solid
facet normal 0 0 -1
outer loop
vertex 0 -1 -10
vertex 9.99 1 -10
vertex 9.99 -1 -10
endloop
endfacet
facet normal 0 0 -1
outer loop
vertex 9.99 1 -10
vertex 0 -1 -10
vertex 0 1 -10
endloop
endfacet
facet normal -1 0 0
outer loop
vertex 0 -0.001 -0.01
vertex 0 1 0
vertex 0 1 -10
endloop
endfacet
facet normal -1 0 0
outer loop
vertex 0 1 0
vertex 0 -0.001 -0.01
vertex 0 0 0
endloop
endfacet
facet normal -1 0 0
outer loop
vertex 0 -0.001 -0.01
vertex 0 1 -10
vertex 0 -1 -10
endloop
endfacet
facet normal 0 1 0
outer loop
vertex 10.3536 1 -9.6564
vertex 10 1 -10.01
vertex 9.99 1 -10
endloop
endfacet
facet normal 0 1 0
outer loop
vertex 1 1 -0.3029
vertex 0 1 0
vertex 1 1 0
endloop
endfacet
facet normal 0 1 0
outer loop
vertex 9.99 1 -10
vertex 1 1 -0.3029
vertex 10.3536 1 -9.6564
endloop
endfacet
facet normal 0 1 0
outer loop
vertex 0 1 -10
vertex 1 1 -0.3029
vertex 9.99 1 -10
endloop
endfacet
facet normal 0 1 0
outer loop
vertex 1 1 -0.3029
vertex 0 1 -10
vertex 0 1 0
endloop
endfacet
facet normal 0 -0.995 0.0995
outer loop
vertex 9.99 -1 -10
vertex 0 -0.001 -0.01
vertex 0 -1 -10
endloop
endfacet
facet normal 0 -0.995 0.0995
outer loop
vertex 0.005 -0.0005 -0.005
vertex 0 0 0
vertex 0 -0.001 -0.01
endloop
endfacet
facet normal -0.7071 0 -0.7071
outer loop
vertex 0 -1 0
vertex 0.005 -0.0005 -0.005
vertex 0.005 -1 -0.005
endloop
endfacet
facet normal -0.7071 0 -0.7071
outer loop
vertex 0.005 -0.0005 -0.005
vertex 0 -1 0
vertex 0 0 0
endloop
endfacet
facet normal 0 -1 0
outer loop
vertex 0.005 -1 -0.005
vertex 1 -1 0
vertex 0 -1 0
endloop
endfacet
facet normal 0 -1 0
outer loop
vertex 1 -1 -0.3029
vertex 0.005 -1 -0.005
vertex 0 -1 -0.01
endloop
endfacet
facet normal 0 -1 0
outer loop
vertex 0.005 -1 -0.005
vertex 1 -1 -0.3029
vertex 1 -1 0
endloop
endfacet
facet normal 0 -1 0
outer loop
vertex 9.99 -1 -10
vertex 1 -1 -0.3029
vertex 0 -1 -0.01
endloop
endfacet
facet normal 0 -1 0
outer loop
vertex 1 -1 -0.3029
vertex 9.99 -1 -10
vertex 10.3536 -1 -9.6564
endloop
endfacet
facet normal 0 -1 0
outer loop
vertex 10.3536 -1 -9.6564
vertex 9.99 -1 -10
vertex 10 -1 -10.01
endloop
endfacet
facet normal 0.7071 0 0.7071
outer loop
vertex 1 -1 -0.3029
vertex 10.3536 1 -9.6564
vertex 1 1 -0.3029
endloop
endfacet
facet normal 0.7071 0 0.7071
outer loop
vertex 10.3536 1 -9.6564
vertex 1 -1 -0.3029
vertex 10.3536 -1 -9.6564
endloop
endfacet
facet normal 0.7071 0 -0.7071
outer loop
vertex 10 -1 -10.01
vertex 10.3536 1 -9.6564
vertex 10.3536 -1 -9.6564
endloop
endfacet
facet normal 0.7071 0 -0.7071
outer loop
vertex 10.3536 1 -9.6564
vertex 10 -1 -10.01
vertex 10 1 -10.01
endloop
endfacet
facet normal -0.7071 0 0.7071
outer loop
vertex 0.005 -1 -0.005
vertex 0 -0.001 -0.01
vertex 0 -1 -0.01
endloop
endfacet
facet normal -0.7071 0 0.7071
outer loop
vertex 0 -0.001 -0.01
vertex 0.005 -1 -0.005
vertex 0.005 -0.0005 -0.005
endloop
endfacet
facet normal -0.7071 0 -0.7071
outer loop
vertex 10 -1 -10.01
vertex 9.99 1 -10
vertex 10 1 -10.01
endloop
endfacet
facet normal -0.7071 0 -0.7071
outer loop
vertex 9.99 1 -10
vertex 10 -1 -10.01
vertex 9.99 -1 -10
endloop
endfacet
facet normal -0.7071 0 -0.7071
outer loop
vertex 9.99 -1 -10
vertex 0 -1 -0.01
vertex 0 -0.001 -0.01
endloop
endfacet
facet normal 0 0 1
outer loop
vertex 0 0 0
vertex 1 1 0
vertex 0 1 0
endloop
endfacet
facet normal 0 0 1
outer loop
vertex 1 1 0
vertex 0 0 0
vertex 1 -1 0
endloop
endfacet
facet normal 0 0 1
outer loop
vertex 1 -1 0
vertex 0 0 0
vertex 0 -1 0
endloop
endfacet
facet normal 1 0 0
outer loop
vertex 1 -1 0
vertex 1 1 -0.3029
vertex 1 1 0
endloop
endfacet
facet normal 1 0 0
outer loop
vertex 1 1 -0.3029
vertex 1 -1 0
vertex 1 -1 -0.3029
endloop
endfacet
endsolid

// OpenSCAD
/////////////////////////////////////////////////
module Corte(A,B){


    r=0.3;
    g=0.1;
    b=0.2;
    

    ax=-atan2((B/2.0),A);
    ay=0;
    az=0;
        
    
    
    rotate(a=[ax,ay,az])
    {
        color( c = [r, g, b], alpha = 0.9 )
        {
            translate([-A/2.0,-B,0])
            {
                cube([2*A,B,A*1.1]);
            }
        }
    }

}
/////////////////////////////////////////////////
module Base(A,B){
    r=0.1;
    g=0.1;
    b=0.3;
    
    ax=0;
    ay=0;
    az=0;
            
    rotate(a=[ax,ay,az])
    {
        color( c = [r, g, b], alpha = 0.9 )
        {
            translate([0,0,0])
            {
                cube([A,B,A]);
            }
        }
    }

}
/////////////////////////////////////////////////
module Nucleo(A,B){
    difference(){
        Base(A,B);
        Corte(A,B);
    }
}
/////////////////////////////////////////////////
module Corte_Superior(A,B){
    rotate(a=[90,0,0])
    {
        linear_extrude(height = B*3, center=true)
        {
            h=1.0;
            polygon(points=[[0-h,A+h],[A+h,A+h],[A+h,0-h],[0-h,A+h]]);
        }
    }
}
///////////////////////////////////////////////////////////////////
module inferior(A,B){
    difference(){
        Nucleo(A,B);
        Corte_Superior(A,B);
    }
}

////////////////////////////////////////////////////////////////////////

module superior(A,B,P){
    difference(){
        translate([0,0,A-0.01])
            {
            rotate(a=[0,45,0])
                {
                cube([sqrt(2*A*A),B,P]);
                }
            }
            translate([0,0,A+P/2.0])
            {
                    cube([sqrt(2*A*A),3*B,P], center=true);
            }
        }
}

///////////////////////////////////////////////////////////////////////
module completo(A,B,P){
    translate([0,-B/2,0])
    {
    union()
    {
        inferior(A,B);
        superior(A,B,P);
    }
    }
}

////////////////////////////////////////////////////////////////////////
module Prisma(pm,B,A){
translate([0,0,A-pm])
    {
        rotate(a=[90,0,0])
        {
            linear_extrude(height = B, center=true)
            {
                polygon(points=[[0,pm],[pm,pm],[pm,0],[0,pm]]);
            }
        }
    }
}
///////////////////////////////////////////////////////////////////

A=10;
B=2;
P=0.5;
pm=1.0;

translate([0,0,-A])
{
    color([0.5, 0.5, 0.8], alpha=0.5) // Color azul claro con opacidad
    union()
    {
        completo(A,B,P);
        Prisma(pm,B, A);
    }
}
